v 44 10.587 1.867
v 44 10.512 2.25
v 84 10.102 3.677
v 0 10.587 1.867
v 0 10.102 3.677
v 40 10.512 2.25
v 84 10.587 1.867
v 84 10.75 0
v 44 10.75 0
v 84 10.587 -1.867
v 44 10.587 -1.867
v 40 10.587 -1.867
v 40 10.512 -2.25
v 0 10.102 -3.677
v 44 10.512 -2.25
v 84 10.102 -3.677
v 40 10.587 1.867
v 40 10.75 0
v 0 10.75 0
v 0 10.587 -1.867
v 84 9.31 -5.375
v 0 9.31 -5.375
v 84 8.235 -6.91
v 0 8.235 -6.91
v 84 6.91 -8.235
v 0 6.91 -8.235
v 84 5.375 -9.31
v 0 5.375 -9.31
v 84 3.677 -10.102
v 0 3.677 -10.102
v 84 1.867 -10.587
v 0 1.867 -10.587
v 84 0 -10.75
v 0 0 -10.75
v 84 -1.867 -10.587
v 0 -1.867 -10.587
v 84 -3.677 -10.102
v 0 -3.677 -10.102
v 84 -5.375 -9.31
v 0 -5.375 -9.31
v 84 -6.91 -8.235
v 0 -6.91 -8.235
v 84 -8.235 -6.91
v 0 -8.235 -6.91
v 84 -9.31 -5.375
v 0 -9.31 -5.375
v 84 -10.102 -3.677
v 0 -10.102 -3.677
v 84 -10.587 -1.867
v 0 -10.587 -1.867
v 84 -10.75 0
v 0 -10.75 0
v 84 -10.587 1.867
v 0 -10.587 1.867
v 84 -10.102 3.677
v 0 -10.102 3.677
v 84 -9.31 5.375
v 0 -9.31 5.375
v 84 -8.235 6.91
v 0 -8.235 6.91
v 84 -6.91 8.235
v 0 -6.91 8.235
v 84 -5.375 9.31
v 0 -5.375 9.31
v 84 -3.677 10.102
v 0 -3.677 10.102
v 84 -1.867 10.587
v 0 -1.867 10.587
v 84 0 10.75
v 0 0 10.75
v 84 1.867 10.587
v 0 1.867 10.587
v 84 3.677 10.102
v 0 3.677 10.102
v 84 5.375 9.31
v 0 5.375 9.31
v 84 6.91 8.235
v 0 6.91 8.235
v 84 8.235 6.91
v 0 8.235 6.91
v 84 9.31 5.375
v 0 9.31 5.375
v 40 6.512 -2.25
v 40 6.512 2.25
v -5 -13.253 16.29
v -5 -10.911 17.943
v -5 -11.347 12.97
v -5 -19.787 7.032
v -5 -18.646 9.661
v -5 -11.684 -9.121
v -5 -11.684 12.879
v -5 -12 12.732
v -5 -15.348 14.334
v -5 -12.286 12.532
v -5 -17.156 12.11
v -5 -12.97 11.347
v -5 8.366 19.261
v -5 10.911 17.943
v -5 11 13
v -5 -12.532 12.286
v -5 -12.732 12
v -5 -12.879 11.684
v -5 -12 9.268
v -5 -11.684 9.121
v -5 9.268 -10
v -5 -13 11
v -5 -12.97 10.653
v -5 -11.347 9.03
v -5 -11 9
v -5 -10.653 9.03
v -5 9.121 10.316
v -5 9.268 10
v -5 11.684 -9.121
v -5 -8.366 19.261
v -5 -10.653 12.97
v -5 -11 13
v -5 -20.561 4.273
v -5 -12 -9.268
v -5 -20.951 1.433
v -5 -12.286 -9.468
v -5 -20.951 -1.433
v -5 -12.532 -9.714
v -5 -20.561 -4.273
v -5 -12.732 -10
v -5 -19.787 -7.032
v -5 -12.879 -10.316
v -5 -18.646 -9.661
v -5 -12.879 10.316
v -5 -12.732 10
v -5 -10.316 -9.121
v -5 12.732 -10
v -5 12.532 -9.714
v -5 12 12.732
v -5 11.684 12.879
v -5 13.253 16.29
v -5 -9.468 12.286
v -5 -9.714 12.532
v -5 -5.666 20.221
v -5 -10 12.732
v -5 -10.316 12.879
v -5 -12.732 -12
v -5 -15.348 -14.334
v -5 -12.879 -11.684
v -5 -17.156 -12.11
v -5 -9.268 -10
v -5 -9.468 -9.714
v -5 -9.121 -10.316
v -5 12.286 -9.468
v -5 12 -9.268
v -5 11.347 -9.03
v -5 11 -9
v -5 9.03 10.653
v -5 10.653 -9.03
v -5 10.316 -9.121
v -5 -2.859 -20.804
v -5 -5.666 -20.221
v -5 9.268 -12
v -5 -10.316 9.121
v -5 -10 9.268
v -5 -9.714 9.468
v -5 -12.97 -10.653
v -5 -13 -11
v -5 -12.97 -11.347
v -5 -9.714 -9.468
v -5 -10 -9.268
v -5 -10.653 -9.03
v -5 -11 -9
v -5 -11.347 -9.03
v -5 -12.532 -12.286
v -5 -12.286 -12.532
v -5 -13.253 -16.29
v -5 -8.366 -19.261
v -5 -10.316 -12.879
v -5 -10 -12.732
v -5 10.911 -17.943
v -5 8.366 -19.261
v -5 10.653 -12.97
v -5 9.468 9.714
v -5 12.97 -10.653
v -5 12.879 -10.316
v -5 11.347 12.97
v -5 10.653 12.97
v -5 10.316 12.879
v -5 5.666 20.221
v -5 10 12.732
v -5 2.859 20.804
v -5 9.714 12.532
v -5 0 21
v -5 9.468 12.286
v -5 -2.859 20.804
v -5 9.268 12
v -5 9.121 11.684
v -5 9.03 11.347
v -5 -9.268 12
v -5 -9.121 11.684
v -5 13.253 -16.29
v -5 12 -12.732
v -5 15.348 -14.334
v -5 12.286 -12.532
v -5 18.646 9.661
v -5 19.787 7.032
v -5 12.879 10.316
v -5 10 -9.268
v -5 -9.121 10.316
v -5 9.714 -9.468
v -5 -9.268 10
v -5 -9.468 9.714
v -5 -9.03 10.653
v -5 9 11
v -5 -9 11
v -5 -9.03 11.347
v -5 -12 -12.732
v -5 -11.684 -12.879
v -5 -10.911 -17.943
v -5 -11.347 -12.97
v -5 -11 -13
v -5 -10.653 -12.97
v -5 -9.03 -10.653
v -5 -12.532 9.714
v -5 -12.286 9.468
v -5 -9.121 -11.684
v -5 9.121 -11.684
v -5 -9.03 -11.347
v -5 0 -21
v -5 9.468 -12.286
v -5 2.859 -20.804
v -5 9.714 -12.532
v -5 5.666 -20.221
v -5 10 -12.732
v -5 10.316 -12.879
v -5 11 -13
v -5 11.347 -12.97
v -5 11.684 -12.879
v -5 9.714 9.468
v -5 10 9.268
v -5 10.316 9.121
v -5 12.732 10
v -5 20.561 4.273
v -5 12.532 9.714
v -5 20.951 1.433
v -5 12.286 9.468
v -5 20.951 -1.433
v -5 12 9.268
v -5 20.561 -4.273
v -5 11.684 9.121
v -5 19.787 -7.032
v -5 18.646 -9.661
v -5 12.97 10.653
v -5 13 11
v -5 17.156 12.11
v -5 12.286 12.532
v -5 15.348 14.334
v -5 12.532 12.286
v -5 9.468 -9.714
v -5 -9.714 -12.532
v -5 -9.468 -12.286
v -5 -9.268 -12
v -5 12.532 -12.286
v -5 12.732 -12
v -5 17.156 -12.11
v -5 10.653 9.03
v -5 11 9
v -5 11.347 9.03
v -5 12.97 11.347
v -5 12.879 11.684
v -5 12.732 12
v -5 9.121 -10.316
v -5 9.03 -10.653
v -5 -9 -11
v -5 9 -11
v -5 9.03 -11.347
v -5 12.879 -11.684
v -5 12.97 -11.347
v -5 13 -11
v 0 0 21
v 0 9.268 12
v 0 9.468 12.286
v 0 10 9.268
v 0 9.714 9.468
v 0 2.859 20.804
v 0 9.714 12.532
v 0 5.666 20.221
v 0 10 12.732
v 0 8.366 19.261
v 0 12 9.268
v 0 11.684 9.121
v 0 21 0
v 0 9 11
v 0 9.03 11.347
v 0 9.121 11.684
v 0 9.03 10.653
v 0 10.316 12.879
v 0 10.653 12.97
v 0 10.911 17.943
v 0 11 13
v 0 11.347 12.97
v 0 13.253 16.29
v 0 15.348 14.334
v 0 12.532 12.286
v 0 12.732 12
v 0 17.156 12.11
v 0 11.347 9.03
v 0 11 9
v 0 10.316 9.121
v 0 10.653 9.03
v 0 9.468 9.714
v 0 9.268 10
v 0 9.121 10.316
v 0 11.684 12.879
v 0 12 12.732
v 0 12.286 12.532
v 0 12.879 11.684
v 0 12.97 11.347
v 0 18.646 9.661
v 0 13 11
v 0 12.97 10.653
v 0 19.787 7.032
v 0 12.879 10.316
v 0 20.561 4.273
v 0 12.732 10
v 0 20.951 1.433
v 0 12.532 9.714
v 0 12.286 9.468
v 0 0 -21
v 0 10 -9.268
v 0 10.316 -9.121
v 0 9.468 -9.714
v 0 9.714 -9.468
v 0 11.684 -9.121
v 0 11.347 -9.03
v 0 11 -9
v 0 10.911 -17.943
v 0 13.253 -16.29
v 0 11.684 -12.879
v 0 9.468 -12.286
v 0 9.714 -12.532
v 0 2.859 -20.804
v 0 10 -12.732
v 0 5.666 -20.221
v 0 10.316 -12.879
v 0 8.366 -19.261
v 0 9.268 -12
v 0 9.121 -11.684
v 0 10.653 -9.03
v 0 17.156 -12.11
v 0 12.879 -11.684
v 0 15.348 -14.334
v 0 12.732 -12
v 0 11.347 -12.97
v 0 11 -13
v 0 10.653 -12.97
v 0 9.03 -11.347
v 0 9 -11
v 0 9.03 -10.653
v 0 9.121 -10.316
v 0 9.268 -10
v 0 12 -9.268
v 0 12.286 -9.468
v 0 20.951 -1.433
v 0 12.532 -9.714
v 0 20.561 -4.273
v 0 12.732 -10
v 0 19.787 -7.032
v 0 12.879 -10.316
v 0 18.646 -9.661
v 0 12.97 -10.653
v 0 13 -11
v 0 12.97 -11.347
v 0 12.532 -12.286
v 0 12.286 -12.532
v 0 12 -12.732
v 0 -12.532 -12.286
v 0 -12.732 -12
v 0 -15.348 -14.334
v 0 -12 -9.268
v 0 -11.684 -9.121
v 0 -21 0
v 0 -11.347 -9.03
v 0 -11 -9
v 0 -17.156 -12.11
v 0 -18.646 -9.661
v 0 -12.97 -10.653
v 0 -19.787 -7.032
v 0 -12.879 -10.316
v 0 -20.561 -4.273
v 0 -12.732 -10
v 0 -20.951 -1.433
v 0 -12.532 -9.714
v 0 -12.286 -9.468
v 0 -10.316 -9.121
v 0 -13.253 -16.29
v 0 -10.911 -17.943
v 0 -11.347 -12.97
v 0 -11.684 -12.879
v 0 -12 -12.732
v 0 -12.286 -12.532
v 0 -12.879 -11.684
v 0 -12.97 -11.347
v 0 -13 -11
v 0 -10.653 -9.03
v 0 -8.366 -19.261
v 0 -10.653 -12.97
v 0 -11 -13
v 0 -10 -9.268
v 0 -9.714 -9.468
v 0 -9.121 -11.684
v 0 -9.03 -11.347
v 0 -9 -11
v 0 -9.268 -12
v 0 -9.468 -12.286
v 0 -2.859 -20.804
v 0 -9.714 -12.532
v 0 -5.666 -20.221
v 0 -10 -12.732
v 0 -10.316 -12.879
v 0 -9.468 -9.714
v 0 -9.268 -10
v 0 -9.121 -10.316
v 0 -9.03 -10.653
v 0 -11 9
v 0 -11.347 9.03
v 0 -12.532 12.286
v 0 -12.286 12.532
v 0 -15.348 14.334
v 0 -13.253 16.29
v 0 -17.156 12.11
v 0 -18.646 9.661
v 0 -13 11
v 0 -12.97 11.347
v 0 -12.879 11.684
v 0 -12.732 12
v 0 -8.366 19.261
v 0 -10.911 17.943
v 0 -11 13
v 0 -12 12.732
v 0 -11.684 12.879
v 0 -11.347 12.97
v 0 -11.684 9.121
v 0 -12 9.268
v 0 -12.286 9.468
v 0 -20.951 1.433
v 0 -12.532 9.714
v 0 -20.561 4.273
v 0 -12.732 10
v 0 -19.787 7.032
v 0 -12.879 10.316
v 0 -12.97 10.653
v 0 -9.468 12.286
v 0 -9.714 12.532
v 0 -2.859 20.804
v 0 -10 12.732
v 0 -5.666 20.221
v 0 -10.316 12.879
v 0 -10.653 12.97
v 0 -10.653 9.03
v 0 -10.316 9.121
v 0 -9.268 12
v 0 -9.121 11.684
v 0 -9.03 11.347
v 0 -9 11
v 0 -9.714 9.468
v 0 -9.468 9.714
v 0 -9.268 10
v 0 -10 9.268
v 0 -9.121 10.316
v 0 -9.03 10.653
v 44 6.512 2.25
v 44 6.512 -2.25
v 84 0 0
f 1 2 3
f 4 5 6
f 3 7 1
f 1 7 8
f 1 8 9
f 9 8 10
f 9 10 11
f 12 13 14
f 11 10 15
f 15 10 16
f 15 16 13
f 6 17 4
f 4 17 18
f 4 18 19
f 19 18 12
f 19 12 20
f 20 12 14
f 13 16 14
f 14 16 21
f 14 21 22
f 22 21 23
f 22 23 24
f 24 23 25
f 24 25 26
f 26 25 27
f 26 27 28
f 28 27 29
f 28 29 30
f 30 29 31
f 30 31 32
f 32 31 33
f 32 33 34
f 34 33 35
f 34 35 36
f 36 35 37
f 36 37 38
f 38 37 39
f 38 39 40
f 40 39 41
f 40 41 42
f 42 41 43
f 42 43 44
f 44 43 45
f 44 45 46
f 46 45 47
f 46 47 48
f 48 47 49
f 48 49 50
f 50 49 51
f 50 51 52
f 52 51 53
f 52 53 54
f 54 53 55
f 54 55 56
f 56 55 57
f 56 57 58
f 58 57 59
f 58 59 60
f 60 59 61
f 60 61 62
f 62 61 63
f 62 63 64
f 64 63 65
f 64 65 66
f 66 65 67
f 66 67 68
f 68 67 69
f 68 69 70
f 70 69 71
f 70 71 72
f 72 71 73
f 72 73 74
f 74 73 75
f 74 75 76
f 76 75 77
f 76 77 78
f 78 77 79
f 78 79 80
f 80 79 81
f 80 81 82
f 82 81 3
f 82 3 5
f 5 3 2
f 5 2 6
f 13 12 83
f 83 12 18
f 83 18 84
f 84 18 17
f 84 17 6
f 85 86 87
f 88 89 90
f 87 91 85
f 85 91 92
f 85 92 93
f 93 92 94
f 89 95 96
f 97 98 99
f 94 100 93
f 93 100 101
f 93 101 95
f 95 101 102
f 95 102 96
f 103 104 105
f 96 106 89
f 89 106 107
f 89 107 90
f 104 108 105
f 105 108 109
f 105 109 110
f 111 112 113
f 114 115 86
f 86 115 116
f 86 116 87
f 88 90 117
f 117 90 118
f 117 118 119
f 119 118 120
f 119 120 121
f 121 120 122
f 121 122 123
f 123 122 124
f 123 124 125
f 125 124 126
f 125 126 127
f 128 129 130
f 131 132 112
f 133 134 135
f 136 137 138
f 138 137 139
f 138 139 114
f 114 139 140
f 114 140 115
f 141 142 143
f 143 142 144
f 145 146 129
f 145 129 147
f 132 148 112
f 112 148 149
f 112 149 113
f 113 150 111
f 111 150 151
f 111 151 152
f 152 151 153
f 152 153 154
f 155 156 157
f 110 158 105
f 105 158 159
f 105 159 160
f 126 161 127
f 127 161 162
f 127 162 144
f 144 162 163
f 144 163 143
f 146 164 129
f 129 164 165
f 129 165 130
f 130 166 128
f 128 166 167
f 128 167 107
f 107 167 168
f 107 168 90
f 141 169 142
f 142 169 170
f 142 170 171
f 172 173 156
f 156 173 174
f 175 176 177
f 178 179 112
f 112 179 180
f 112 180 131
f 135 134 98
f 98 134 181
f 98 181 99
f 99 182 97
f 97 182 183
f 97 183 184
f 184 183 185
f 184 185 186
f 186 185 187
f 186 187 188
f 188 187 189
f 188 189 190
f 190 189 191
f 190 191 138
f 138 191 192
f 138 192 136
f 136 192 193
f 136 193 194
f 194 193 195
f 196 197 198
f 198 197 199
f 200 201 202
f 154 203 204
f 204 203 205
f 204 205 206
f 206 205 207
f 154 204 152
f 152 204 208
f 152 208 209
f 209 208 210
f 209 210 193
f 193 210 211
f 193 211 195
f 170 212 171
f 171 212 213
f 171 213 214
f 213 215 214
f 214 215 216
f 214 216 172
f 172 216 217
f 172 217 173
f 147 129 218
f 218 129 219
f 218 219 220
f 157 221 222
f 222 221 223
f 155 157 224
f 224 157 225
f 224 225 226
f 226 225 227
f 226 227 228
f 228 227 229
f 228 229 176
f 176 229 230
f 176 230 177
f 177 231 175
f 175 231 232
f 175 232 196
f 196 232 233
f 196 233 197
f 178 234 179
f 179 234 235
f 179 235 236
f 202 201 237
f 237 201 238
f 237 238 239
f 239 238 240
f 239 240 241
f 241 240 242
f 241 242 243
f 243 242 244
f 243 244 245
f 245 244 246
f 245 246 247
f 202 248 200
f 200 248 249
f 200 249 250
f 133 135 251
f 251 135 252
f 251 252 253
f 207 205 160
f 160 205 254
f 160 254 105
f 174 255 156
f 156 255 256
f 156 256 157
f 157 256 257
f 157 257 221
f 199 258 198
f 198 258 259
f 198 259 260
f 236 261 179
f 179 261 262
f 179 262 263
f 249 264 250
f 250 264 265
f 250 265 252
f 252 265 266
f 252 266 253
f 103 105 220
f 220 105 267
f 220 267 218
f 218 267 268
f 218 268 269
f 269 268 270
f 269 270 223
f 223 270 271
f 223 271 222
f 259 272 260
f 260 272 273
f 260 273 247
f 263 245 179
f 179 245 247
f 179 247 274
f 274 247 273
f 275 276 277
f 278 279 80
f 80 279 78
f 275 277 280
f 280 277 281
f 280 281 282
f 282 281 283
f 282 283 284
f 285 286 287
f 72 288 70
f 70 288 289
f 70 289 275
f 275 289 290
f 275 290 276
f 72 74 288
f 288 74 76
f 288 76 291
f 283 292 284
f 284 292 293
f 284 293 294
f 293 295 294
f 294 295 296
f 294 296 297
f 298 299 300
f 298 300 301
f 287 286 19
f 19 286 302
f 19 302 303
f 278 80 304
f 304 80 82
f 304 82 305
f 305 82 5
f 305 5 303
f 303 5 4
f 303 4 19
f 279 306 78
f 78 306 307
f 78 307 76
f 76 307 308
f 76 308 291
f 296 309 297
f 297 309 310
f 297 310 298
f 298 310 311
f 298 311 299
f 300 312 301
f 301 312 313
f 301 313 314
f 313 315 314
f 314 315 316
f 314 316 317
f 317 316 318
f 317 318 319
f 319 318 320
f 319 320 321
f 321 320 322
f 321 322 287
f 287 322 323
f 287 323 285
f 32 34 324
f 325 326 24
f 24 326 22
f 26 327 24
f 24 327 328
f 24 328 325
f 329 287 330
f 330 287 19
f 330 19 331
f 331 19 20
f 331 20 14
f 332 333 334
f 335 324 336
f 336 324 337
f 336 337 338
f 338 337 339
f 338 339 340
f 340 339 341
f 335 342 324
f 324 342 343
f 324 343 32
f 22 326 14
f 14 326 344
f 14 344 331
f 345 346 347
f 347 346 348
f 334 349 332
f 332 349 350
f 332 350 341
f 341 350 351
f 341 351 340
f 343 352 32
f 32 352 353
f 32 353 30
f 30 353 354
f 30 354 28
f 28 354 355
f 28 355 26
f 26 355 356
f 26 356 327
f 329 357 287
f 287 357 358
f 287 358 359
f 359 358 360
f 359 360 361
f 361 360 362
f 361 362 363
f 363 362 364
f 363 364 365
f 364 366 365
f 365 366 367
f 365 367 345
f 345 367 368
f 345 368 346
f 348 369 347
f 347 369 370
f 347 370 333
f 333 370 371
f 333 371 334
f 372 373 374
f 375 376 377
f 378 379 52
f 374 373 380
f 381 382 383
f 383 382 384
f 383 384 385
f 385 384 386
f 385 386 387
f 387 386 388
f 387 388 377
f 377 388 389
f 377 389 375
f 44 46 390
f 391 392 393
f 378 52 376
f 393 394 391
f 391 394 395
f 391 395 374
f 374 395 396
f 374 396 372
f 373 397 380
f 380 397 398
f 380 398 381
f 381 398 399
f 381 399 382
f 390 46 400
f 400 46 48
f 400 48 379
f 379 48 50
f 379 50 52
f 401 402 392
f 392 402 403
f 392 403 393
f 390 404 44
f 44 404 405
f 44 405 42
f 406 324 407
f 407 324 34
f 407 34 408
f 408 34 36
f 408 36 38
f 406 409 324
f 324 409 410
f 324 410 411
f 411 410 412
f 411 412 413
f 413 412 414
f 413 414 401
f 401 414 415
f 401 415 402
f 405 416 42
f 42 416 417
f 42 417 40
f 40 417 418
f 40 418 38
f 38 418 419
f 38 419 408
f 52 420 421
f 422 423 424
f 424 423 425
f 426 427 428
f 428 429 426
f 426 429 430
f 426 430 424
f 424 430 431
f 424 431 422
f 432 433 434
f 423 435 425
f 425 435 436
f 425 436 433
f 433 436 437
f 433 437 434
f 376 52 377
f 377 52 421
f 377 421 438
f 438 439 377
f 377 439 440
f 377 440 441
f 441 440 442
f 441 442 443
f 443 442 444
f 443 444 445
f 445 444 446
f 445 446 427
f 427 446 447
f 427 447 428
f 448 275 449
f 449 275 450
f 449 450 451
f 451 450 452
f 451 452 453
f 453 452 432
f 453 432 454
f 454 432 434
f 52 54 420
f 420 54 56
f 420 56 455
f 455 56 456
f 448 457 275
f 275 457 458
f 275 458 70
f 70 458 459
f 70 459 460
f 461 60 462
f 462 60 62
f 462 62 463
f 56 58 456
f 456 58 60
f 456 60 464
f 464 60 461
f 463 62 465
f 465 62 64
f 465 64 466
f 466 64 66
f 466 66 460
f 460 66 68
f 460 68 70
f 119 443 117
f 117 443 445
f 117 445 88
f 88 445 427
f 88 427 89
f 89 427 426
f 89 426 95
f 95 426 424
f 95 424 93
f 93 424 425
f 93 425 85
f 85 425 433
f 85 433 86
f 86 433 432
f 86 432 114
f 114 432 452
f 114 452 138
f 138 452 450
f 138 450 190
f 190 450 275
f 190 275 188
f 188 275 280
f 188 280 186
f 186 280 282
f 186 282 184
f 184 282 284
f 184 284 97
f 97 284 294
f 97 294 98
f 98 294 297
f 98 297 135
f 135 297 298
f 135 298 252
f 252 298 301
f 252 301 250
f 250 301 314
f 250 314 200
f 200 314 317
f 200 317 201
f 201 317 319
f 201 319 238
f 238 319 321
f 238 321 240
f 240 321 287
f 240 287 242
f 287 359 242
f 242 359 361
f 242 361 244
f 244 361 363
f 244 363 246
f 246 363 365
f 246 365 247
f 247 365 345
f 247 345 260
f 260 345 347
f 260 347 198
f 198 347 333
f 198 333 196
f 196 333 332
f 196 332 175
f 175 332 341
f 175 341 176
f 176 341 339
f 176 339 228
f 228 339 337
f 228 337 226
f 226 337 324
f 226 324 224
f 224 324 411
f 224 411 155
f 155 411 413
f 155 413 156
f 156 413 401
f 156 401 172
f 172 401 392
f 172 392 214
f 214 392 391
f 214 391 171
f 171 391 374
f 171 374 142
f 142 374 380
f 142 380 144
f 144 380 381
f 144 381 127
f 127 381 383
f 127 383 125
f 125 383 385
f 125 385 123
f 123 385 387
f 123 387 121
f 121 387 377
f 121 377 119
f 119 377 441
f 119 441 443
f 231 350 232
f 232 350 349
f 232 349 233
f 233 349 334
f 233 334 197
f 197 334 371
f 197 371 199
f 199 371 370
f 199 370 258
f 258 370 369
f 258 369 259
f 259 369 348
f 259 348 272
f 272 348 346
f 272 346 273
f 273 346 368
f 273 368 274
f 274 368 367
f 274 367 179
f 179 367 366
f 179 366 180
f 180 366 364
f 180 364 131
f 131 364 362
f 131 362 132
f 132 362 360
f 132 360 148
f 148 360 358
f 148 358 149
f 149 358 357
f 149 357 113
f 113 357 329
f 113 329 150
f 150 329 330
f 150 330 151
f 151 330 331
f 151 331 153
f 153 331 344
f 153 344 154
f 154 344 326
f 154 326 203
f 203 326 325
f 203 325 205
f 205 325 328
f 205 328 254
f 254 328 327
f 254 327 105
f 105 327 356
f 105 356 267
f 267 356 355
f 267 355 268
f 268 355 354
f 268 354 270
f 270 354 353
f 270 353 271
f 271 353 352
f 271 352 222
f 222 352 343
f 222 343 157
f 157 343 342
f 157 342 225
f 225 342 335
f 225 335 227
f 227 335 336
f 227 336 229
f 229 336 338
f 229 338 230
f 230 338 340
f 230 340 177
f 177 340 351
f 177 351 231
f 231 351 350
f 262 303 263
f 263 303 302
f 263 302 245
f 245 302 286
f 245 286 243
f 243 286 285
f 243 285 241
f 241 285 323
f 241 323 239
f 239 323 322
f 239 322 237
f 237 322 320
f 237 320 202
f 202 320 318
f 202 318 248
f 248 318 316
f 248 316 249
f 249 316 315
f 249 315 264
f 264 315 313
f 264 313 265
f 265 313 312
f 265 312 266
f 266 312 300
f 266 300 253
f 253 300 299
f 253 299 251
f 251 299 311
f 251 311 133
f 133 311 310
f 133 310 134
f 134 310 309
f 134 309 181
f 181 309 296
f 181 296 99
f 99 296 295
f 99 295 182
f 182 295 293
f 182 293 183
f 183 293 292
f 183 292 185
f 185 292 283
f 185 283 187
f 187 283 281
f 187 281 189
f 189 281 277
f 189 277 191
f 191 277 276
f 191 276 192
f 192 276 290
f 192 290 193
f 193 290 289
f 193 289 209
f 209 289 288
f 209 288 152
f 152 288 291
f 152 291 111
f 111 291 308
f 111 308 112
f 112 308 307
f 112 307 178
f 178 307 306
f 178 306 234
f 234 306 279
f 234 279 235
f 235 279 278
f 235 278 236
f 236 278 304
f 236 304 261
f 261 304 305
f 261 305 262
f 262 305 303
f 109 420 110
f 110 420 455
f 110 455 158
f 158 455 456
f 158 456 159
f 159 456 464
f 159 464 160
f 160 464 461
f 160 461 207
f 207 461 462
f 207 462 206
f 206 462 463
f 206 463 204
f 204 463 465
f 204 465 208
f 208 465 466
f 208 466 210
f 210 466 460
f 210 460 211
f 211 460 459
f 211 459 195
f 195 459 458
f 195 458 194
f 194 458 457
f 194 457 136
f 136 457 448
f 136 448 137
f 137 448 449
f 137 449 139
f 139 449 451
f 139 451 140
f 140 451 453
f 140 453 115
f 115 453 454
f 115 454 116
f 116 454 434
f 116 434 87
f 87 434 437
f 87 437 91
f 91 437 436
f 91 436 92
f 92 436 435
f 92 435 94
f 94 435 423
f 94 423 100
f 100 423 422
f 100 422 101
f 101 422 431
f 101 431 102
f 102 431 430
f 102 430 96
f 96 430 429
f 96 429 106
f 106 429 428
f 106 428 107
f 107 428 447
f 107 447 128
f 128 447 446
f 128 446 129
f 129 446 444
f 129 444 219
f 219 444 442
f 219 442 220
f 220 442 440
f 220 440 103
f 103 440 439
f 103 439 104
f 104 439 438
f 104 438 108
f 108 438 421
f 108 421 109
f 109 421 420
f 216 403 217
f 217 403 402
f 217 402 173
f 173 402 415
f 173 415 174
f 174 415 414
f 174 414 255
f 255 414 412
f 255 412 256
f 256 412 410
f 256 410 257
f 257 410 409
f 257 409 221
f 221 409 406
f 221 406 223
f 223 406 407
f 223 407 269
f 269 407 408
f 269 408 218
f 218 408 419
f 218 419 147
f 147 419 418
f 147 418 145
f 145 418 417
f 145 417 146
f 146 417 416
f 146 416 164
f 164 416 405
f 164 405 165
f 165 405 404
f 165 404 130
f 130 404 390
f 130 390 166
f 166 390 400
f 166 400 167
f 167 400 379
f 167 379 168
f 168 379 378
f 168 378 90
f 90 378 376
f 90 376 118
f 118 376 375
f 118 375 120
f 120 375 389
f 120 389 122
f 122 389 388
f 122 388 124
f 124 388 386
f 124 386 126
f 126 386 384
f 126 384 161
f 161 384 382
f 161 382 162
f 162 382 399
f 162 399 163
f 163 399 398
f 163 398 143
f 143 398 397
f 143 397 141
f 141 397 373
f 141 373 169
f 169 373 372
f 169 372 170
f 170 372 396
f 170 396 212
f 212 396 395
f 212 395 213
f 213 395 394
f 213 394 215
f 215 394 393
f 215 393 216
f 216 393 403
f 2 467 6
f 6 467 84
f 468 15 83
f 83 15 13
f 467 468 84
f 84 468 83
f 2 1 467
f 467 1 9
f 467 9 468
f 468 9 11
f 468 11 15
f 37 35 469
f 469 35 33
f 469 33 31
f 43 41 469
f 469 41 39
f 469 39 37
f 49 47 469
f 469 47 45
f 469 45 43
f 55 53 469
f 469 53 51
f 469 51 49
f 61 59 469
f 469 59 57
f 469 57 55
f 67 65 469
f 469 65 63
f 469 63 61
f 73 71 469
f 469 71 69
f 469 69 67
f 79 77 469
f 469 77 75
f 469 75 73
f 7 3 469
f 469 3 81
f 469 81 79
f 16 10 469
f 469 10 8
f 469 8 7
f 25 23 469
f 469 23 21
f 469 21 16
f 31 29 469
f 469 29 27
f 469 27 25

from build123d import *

# Parameters (mm, degrees)
SKETCH1_R           = 10.75
BOSS_EXTRUDE1_DEPTH = 40
SKETCH4_R           = 21
SKETCH4_R_2         = 2
BOSS_EXTRUDE3_DEPTH = 5
BOSS_EXTRUDE5_DEPTH = 4
SKETCH7_R           = 10.75
BOSS_EXTRUDE6_DEPTH = 40


with BuildPart() as part:
    # Sketch1 → Boss-Extrude1 (new body)
    with BuildSketch(Plane(origin=(0, 0, 0), x_dir=(0, 0, -1), z_dir=(1, 0, 0))):
        Circle(SKETCH1_R)
    extrude(amount=BOSS_EXTRUDE1_DEPTH)

    # Sketch4 → Boss-Extrude3 (add)
    with BuildSketch(Plane.ZY):
        Circle(SKETCH4_R)
        with Locations((-11, 11)):
            Circle(SKETCH4_R_2, mode=Mode.SUBTRACT)
        with Locations((11, 11)):
            Circle(SKETCH4_R_2, mode=Mode.SUBTRACT)
        with Locations((11, -11)):
            Circle(SKETCH4_R_2, mode=Mode.SUBTRACT)
        with Locations((-11, -11)):
            Circle(SKETCH4_R_2, mode=Mode.SUBTRACT)
    extrude(amount=BOSS_EXTRUDE3_DEPTH)

    # Sketch6 → Boss-Extrude5 (add)
    with BuildSketch(Plane(origin=(40, 0, 0), x_dir=(0, 0, -1), z_dir=(1, 0, 0))):
        with BuildLine():
            Line((-2.25, 6.511898021), (2.25, 6.511898021))
            Line((2.25, 6.511898021), (2.25, 10.511898021))
            ThreePointArc((2.25, 10.511898021), (0, -10.75), (-2.25, 10.511898021))
            Line((-2.25, 10.511898021), (-2.25, 6.511898021))
        make_face()
    extrude(amount=BOSS_EXTRUDE5_DEPTH)

    # Sketch7 → Boss-Extrude6 (add)
    with BuildSketch(Plane(origin=(44, 0, 0), x_dir=(0, 0, -1), z_dir=(1, 0, 0))):
        Circle(SKETCH7_R)
    extrude(amount=BOSS_EXTRUDE6_DEPTH)


solid = part.part
